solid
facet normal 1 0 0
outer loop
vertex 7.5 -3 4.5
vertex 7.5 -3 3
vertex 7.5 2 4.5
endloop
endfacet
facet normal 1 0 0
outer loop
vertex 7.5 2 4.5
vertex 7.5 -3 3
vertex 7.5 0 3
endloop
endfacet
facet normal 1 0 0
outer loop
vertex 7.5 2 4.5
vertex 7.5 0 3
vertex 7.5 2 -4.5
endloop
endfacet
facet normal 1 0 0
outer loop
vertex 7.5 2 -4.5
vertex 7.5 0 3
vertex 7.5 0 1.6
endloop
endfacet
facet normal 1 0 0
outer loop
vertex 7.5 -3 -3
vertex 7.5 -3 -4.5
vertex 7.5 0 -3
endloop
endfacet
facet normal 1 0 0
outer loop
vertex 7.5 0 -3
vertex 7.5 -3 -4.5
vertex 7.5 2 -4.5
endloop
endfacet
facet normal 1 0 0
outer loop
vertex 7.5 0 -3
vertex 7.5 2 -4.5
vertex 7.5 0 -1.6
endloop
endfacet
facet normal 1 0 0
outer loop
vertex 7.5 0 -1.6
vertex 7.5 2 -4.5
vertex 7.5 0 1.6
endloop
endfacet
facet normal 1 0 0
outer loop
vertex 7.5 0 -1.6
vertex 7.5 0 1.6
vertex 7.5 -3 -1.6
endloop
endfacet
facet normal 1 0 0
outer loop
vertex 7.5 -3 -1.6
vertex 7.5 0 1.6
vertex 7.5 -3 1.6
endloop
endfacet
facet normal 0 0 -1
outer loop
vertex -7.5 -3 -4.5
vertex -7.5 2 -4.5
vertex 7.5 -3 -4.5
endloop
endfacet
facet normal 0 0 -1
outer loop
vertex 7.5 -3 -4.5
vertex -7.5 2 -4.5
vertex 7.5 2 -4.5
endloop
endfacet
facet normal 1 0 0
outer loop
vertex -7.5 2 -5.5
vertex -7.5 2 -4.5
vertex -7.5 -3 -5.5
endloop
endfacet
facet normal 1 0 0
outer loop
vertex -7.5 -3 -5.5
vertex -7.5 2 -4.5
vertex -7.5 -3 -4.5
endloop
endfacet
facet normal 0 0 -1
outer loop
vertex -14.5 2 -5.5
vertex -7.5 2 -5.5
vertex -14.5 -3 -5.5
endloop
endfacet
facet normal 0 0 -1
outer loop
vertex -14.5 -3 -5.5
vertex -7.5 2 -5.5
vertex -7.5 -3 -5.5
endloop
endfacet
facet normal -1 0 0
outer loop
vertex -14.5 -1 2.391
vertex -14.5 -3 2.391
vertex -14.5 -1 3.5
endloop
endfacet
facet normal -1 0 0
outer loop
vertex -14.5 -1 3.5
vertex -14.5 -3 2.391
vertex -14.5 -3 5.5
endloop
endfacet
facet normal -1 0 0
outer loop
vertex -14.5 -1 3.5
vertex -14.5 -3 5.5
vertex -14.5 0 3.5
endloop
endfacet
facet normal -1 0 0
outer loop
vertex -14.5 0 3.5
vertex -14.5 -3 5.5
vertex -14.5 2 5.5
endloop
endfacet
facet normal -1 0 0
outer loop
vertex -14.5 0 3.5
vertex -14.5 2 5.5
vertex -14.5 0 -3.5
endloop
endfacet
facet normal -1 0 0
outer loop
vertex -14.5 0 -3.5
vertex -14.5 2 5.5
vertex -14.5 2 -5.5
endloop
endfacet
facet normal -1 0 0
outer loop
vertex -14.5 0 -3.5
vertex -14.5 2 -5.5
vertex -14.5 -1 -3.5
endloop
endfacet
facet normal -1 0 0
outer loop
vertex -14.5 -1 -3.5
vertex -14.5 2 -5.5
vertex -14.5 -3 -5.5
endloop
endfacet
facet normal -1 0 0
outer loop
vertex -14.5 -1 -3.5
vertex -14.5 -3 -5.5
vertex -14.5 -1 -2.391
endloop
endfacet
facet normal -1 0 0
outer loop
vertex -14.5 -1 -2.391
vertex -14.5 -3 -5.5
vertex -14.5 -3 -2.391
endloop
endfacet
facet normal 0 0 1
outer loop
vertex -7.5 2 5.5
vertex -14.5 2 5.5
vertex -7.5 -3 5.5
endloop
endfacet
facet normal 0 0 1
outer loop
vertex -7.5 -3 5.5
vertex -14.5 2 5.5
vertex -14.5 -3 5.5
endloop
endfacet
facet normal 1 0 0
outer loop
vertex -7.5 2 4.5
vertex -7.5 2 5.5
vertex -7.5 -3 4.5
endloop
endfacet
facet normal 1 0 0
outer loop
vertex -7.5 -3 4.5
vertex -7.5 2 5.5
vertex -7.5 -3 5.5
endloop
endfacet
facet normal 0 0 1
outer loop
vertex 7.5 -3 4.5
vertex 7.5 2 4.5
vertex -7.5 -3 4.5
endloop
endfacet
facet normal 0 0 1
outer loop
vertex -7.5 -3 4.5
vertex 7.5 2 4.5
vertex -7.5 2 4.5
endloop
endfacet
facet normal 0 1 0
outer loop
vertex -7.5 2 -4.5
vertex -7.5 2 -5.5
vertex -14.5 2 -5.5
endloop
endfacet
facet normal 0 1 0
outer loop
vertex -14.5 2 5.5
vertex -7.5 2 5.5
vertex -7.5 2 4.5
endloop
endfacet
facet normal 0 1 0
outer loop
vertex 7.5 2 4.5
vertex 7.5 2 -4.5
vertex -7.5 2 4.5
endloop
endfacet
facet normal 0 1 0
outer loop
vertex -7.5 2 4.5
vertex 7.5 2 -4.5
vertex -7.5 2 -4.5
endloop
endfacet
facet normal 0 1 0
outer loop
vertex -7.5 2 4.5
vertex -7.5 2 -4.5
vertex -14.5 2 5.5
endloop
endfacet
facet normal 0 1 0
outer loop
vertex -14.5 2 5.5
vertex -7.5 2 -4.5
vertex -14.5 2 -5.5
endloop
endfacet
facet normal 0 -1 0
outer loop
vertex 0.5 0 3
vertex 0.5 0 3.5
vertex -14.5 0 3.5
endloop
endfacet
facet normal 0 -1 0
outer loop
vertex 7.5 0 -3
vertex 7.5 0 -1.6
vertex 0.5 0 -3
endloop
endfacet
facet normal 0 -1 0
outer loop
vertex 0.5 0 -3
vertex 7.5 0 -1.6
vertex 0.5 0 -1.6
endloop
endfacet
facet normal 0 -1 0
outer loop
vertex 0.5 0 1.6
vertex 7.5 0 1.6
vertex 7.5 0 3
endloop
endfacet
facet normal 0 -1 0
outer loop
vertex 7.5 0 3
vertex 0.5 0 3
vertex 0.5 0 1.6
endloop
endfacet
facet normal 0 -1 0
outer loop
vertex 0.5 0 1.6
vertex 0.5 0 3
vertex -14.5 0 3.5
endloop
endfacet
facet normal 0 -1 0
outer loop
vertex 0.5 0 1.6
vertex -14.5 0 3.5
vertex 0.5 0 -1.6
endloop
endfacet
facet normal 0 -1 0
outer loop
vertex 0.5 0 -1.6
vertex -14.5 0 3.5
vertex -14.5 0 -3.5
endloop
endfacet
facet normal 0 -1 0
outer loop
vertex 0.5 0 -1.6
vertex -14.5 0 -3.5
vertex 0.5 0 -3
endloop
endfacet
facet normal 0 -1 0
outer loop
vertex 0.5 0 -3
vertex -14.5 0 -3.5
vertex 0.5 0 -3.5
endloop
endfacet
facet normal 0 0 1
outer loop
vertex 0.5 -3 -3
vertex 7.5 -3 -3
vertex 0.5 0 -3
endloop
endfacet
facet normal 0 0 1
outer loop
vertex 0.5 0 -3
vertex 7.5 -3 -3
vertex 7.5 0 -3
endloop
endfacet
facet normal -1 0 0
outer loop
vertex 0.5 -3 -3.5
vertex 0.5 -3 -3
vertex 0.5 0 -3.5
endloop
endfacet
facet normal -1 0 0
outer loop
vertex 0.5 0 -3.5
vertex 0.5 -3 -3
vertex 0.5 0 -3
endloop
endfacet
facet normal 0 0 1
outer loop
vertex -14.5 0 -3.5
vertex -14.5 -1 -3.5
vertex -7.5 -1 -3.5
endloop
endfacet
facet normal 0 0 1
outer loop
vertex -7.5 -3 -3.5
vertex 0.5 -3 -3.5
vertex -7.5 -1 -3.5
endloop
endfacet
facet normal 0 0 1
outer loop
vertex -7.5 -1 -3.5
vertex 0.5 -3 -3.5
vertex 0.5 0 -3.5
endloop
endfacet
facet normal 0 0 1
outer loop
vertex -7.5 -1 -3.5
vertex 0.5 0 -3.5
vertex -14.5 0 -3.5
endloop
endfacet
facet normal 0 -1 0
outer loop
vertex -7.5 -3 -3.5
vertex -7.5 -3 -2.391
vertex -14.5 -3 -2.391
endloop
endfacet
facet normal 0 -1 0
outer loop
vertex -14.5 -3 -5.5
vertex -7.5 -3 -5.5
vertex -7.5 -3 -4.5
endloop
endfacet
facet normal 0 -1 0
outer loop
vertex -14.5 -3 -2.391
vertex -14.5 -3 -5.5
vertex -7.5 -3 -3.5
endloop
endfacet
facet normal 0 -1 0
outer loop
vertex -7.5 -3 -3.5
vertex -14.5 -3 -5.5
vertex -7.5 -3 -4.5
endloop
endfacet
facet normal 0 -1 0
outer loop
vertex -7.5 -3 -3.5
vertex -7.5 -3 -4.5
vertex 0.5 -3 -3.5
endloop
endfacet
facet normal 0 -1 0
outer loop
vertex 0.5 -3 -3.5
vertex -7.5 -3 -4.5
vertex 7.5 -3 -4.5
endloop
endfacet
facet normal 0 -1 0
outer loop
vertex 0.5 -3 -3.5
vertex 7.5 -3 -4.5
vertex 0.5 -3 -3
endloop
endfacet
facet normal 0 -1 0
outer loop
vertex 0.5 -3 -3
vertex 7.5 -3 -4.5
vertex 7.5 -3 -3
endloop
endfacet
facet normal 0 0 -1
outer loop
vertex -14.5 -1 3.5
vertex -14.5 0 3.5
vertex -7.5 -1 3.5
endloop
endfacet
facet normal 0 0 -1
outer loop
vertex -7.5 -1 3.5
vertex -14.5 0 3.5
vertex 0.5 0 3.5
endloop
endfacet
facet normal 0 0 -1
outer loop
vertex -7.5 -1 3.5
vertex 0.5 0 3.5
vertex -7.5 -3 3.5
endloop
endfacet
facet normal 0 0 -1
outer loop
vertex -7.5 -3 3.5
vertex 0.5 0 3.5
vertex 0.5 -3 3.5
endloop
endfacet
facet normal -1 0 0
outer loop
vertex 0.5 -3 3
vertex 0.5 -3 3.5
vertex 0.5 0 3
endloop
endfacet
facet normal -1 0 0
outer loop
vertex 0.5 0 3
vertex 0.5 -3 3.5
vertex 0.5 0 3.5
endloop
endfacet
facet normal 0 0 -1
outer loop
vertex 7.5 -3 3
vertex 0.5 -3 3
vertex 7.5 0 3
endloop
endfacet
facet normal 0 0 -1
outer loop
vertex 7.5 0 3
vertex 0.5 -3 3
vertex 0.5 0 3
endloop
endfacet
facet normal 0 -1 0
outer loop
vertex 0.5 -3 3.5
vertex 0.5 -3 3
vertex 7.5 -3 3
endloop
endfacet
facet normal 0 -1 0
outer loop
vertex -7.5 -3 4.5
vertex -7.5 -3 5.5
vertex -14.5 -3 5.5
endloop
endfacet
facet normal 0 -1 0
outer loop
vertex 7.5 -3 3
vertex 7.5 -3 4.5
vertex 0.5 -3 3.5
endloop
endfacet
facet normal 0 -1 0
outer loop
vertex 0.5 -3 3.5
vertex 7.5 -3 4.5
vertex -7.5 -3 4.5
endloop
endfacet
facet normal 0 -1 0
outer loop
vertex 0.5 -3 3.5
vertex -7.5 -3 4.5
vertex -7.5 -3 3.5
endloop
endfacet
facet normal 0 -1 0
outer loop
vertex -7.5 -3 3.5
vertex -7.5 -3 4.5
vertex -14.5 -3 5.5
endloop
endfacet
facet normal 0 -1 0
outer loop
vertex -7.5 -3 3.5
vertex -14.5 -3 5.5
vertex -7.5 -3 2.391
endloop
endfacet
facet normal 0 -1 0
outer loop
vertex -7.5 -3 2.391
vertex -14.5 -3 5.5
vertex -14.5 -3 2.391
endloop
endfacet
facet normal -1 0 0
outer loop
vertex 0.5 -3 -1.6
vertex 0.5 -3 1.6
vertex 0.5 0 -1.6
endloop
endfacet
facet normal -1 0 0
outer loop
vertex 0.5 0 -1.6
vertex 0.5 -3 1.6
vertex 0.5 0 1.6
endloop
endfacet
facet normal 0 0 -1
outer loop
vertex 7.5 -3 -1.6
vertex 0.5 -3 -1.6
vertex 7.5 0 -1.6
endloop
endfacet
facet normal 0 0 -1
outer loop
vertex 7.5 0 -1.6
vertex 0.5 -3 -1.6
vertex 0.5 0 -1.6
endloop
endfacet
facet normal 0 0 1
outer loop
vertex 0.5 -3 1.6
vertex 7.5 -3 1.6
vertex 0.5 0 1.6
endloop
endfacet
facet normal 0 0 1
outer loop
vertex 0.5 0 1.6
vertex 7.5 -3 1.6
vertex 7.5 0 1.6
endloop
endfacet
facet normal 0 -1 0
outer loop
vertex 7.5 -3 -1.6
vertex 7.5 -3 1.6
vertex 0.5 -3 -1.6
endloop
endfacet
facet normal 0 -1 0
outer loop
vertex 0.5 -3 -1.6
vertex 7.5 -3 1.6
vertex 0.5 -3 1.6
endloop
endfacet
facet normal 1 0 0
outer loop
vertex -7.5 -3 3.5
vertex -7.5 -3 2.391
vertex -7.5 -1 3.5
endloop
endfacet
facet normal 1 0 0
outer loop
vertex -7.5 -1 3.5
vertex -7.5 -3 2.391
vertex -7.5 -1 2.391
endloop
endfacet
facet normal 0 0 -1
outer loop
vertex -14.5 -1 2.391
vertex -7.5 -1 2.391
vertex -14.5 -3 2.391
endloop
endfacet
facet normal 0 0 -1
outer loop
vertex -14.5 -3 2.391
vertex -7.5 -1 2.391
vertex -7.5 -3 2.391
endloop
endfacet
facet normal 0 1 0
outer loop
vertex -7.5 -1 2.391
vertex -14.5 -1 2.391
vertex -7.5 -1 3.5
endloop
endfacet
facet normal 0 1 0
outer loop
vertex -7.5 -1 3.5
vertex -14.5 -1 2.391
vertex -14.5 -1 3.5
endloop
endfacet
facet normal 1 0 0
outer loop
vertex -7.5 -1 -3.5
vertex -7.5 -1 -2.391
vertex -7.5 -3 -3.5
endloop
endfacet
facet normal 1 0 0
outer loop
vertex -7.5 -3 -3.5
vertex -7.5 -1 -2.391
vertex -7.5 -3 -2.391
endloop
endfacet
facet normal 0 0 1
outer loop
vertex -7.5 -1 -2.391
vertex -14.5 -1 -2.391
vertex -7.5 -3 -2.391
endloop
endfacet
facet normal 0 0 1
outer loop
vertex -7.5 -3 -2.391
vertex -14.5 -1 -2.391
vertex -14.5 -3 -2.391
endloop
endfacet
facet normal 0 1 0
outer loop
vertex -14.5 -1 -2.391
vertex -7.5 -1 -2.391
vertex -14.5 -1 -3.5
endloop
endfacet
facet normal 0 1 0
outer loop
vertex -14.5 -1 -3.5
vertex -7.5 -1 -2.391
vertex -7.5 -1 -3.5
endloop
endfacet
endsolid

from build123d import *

# Parameters (mm, degrees)
BOSS_EXTRUDE1_DEPTH = 2
SKETCH2_W           = 7
SKETCH2_H           = 3.2
BOSS_EXTRUDE2_DEPTH = 3
SKETCH3_W           = 7
SKETCH3_H           = 3.108863517
BOSS_EXTRUDE3_DEPTH = 2


with BuildPart() as part:
    # Sketch1 → Boss-Extrude1 (new body)
    with BuildSketch(Plane(origin=(0, 0, 0), x_dir=(1, 0, 0), z_dir=(0, 1, 0))):
        Polygon((-7.5, -4.5), (7.5, -4.5), (7.5, 4.5), (-7.5, 4.5), (-7.5, 5.5), (-14.5, 5.5), (-14.5, -5.5), (-7.5, -5.5), align=None)
    extrude(amount=BOSS_EXTRUDE1_DEPTH)

    # Sketch2 → Boss-Extrude2 (add)
    with BuildSketch(Plane(origin=(0, 0, 0), x_dir=(1, 0, 0), z_dir=(0, 1, 0))):
        Polygon((7.5, 4.5), (-7.5, 4.5), (-7.5, 5.5), (-14.5, 5.5), (-14.5, 3.5), (0.5, 3.5), (0.5, 3), (7.5, 3), align=None)
        Polygon((7.5, -4.5), (-7.5, -4.5), (-7.5, -5.5), (-14.5, -5.5), (-14.5, -3.5), (0.5, -3.5), (0.5, -3), (7.5, -3), align=None)
        with Locations((4, 0)):
            Rectangle(SKETCH2_W, SKETCH2_H)
    extrude(amount=-BOSS_EXTRUDE2_DEPTH)

    # Sketch3 → Boss-Extrude3 (add)
    with BuildSketch(Plane.XZ.offset(3)):
        with Locations((-11, 3.945568242)):
            Rectangle(SKETCH3_W, SKETCH3_H)
        with Locations((-11, -3.945568242)):
            Rectangle(SKETCH3_W, SKETCH3_H)
    extrude(amount=-BOSS_EXTRUDE3_DEPTH)


solid = part.part
